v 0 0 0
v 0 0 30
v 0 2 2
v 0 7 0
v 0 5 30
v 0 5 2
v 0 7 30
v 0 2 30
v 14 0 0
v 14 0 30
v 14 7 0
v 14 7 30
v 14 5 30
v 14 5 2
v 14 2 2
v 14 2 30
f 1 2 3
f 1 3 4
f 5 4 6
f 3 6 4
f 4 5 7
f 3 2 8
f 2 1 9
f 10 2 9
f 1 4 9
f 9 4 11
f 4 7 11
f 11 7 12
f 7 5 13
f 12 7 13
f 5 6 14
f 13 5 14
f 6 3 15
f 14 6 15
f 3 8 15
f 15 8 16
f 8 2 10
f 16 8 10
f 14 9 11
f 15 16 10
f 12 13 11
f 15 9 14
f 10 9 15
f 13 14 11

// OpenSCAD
union(){
cube([14,2,30]);

translate([0,2,0]){
color(["red"]) cube([14,3,2]);
}

translate([0,5,0]){
cube([14,2,30]);
}

}
